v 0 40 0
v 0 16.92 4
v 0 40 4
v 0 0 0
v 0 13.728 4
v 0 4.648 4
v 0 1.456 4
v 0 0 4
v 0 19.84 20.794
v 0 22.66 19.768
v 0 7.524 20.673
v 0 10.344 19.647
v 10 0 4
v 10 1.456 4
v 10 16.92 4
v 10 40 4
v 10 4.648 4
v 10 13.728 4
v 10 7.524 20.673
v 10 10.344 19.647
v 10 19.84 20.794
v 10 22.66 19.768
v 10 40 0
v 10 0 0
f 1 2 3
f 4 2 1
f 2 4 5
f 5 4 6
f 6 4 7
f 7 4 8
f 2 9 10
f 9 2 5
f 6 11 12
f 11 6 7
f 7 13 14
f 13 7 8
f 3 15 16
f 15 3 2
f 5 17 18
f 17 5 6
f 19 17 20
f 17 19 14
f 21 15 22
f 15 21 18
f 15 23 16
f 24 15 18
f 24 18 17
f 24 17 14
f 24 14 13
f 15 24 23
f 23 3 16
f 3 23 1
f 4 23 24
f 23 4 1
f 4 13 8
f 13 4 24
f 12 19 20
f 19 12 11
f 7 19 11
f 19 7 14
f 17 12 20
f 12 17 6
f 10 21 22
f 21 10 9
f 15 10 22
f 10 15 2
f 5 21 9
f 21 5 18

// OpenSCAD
cube ([10,40,4]);
rotate ([-20,0,0])
translate ([0,0,2])
cube ([10,3,20]);
translate ([0,13,2])
rotate ([-20,0,0])
cube ([10,3,20]);
